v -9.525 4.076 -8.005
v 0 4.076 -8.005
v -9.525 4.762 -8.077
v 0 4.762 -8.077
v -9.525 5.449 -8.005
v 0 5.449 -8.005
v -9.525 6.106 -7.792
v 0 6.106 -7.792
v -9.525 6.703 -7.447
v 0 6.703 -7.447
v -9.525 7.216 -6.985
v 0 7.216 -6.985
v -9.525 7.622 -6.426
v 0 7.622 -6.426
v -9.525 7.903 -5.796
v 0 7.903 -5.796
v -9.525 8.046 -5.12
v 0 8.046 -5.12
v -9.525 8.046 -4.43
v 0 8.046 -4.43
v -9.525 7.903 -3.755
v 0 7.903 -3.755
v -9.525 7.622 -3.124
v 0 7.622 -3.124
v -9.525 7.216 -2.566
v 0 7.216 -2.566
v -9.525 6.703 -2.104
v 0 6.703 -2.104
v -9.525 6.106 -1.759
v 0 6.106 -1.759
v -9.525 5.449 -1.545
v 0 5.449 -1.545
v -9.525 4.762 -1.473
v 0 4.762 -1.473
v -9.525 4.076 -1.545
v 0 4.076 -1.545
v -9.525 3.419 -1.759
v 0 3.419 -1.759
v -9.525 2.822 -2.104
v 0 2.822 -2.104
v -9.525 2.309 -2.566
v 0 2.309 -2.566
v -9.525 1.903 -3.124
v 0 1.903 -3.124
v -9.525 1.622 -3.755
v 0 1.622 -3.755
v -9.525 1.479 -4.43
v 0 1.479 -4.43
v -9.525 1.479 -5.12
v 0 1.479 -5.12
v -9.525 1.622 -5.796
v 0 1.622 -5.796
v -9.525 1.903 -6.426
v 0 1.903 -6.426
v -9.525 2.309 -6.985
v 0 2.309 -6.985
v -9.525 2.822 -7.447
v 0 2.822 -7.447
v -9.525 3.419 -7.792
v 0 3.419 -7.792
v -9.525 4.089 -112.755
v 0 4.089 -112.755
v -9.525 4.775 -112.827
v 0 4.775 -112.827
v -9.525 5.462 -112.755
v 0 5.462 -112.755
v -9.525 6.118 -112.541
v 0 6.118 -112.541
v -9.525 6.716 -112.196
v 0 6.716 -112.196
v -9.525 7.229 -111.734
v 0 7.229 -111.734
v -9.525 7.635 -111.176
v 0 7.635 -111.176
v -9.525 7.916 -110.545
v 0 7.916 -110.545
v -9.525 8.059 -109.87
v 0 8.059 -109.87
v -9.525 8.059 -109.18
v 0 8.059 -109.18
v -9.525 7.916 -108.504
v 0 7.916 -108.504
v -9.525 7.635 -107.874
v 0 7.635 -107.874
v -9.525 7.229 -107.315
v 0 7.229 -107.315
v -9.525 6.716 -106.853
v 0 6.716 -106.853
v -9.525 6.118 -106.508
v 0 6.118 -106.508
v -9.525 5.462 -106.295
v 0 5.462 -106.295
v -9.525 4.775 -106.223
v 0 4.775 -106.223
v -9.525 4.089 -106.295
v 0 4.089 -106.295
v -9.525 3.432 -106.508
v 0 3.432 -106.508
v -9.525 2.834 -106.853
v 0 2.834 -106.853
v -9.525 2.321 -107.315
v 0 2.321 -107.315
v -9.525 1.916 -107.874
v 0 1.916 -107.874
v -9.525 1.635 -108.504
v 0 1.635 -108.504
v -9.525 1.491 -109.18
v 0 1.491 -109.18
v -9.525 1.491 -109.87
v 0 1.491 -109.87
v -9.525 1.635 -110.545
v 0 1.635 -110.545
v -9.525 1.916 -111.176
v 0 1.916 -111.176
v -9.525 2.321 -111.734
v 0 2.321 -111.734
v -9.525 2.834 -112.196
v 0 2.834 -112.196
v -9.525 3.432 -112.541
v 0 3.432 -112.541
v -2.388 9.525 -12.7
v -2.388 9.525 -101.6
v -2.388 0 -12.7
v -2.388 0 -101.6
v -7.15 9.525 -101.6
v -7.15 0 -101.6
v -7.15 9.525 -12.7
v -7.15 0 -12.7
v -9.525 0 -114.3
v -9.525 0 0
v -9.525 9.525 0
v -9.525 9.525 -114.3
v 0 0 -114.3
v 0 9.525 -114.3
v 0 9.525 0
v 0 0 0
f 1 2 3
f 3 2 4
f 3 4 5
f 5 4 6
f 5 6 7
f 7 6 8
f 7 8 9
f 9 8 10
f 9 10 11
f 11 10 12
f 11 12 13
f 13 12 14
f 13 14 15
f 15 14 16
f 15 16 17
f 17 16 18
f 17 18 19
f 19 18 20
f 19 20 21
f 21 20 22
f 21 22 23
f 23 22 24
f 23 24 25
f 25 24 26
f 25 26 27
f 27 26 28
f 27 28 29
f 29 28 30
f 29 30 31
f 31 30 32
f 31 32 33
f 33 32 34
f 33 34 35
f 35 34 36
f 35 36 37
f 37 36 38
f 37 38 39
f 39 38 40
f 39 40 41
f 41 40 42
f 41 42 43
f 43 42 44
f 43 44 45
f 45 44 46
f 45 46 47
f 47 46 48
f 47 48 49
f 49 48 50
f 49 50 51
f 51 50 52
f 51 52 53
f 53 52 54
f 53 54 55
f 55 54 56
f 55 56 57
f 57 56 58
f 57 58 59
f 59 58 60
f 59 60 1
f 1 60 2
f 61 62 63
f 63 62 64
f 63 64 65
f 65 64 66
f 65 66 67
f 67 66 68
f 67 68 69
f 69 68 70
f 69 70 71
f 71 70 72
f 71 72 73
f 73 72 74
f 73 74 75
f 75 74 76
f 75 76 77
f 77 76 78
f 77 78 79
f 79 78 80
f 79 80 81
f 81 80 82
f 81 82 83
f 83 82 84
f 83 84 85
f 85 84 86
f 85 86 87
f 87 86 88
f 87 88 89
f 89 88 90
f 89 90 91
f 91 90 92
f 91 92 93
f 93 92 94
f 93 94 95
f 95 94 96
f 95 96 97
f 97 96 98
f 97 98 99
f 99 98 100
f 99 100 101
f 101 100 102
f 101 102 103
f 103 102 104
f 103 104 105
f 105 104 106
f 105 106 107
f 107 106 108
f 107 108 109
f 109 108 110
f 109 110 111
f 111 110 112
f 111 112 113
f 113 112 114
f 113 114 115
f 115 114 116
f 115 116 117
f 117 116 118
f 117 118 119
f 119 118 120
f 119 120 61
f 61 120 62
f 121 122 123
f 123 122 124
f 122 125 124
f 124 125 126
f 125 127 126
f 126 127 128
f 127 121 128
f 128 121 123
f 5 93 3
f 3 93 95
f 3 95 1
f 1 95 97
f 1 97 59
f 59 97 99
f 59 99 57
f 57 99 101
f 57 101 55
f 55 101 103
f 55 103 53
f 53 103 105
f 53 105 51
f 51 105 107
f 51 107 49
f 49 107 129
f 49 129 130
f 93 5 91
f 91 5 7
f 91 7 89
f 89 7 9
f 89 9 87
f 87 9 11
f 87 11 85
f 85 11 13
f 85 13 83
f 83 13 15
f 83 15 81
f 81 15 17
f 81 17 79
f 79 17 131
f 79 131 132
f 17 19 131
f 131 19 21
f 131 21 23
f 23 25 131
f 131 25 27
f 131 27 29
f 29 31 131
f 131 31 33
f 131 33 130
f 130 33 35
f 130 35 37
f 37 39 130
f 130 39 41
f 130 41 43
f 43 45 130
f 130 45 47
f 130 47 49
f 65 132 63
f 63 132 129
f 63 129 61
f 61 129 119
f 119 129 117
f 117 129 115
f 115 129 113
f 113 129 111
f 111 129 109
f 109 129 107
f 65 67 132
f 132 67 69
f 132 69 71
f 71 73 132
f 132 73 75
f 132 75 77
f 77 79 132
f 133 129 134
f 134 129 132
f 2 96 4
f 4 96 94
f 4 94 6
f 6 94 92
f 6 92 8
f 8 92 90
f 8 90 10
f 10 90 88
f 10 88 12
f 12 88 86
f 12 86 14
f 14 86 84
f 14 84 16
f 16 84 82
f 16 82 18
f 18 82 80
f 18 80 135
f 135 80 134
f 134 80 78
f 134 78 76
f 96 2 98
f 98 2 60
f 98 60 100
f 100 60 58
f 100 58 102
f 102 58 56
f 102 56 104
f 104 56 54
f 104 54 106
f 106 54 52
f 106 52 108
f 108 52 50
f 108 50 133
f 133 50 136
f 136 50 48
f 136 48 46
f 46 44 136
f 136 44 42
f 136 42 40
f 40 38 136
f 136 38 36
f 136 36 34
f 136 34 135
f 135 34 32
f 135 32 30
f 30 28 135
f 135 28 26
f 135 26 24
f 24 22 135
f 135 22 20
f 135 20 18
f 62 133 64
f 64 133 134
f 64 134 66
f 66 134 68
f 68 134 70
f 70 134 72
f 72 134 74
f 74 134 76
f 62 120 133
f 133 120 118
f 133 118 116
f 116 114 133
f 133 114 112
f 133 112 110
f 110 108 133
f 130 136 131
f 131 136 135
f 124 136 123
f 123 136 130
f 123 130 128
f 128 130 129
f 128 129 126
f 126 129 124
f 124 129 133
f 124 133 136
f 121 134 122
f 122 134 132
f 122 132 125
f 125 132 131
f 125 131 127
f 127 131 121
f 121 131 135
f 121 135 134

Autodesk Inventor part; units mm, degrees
ref_plane "YZ Plane" through (0, 0, 0) normal (1, 0, 0) x (0, 1, 0)
ref_plane "XZ Plane" through (0, 0, 0) normal (0, 1, 0) x (-1, 0, 0)
ref_plane "XY Plane" through (0, 0, 0) normal (0, 0, 1) x (1, 0, 0)
sketch "Sketch1" plane through (0, 0, 0) normal (0, 1, 0) x (-1, 0, 0)
  line L0 (0, 0) -> (9.525, 0)
  line L1 (9.525, 0) -> (9.525, -114.3)
  line L2 (9.525, -114.3) -> (0, -114.3)
  line L3 (0, -114.3) -> (0, 0)
  dimension "d0" = 9.525
  dimension "d1" = 114.3
extrude "Extrusion1" add sketch "Sketch1" along normal blind 9.525
sketch "Sketch2" plane through (0, 9.525, 0) normal (0, 1, 0) x (1, 0, 0)
  point P0 (0, 0)
  point P1 (-2.3813, 12.7)
sketch "Sketch3" plane through (0, 9.525, 0) normal (0, 1, 0) x (1, 0, 0)
  line L0 (-2.3876, 12.7) -> (-7.1501, 12.7)
  line L1 (-7.1501, 12.7) -> (-7.1501, 101.6)
  line L2 (-7.1501, 101.6) -> (-2.3876, 101.6)
  line L3 (-2.3876, 101.6) -> (-2.3876, 12.7)
  point P0 (0, 0)
  dimension "d4" = 4.7625
  dimension "d5" = 88.9
extrude "Extrusion2" cut sketch "Sketch3" against normal blind 9.525
sketch "Sketch4" plane through (0, 0, 0) normal (1, 0, 0) x (0, 0, -1)
  circle A0 centre (6.1453, 4.7625) radius 3.175
  circle A1 centre (6.1453, 4.7625) radius 3.302
  point P0 (0, 0)
  dimension "d8" = 6.35
  dimension "d9" = 6.604
extrude "Extrusion3" cut sketch "Sketch4" against normal blind 8.255 contours A0 | A1
sketch "Sketch5" plane through (0, 0, 0) normal (1, 0, 0) x (0, 0, -1)
  point P0 (0, 0)
  point P1 (107.95, 4.7625)
sketch "Sketch6" plane through (0, 0, 0) normal (1, 0, 0) x (0, 0, -1)
  circle A0 centre (6.1453, 4.7625) radius 3.302 projected
  circle A1 centre (6.1453, 4.7625) radius 3.302
  point P0 (0, 0)
extrude "Extrusion4" add sketch "Sketch6" against normal blind 9.2075
sketch "Sketch7" plane through (0, 0, 0) normal (1, 0, 0) x (0, 0, -1)
  circle A0 centre (4.7752, 4.7625) radius 3.302
  circle A1 centre (109.5248, 4.7752) radius 3.302
  point P0 (0, 0)
  dimension "d14" = 6.604
  dimension "d15" = 6.604
extrude "Extrusion5" cut sketch "Sketch7" against normal blind 7.62
sketch "Sketch8" plane through (-9.525, 0, -114.3) normal (-1, 0, 0) x (0, 0, 1)
  line L0 (61.9125, 3.175) -> (52.3875, 3.175)
  line L1 (52.3875, 3.175) -> (52.3875, 6.35)
  line L2 (52.3875, 6.35) -> (61.9125, 6.35)
  line L3 (61.9125, 6.35) -> (61.9125, 3.175)
  line L4 (61.9125, 3.175) -> (52.3875, 6.35) construction
  line L5 (52.3875, 3.175) -> (61.9125, 6.35) construction
  point P0 (114.3, 0)
  point P1 (57.15, 4.7625)
  dimension "d18" = 9.525
  dimension "d19" = 3.175
extrude "Extrusion6" add sketch "Sketch8" along normal blind 19.05
sketch "Sketch9" plane through (-9.525, 6.35, -52.3875) normal (0, 1, 0) x (1, 0, 0)
  point P0 (9.525, -52.3875)
sketch "Sketch10" plane through (-28.575, 0, -114.3) normal (-1, 0, 0) x (0, 0, 1)
  point P0 (114.3, 0)
sketch "Sketch11" plane through (-28.575, 0, -114.3) normal (-1, 0, 0) x (0, 0, 1)
  line L0 (61.9125, 3.175) -> (52.3875, 3.175) projected
  line L1 (52.3875, 6.35) -> (61.9125, 6.35) projected
  line L2 (52.3875, 3.175) -> (61.9125, 3.175)
  line L3 (61.9125, 3.175) -> (61.9125, 6.35)
  line L4 (61.9125, 6.35) -> (52.3875, 6.35)
  line L5 (52.3875, 6.35) -> (52.3875, 3.175)
  point P0 (114.3, 0)
extrude "Extrusion7" add sketch "Sketch11" along normal blind 6.35
sketch "Sketch12" plane through (-34.925, 0, -114.3) normal (-1, 0, 0) x (0, 0, 1)
  line L0 (52.3875, 6.35) -> (61.9125, 6.35) projected
  line L1 (52.3875, 3.175) -> (52.3875, 6.35) projected
  line L2 (61.9125, 6.35) -> (52.3875, 6.35)
  line L3 (52.3875, 6.35) -> (52.3875, 3.175)
  line L4 (52.3875, 3.175) -> (61.9125, 3.175)
  line L5 (61.9125, 3.175) -> (61.9125, 6.35)
  point P0 (114.3, 0)
sketch "Sketch13" plane through (-9.525, 3.175, -61.9125) normal (0, -1, 0) x (1, 0, 0)
  circle A0 centre (-20.6248, 4.7625) radius 3.175
  point P0 (9.525, 61.9125)
  dimension "d24" = 6.35
extrude "Extrusion8" cut sketch "Sketch13" against normal blind 6.35
fillet "Fillet1" radius 3.175 2 edges at (-9.525, 6.35, -57.15) (-9.525, 3.175, -57.15)
fillet "Fillet2" radius 3.175 2 edges at (-9.525, 4.7625, -52.3875) (-9.525, 4.7625, -61.9125)
sketch "Sketch14" plane through (-9.525, 0, 0) normal (-1, 0, 0) x (0, 0, 1)
  line L0 (-61.9125, 3.175) -> (-52.3875, 3.175) projected
  line L1 (-61.9125, 3.175) -> (-87.3125, 3.175)
  line L2 (-87.3125, 3.175) -> (-87.3125, 6.35)
  line L3 (-87.3125, 6.35) -> (-61.9125, 6.35)
  line L4 (-61.9125, 6.35) -> (-61.9125, 3.175)
  line L5 (-49.2125, 0) -> (-52.3875, 3.175) projected
  line L6 (-52.3875, 3.175) -> (-26.9875, 3.175)
  line L7 (-26.9875, 3.175) -> (-26.9875, 6.35)
  line L8 (-26.9875, 6.35) -> (-52.3875, 6.35)
  line L9 (-52.3875, 6.35) -> (-52.3875, 3.175)
  point P0 (0, 0)
  dimension "d29" = 25.4
  dimension "d30" = 25.4
sketch "Sketch15" plane through (-9.525, 0, 0) normal (-1, 0, 0) x (0, 0, 1)
  point P0 (0, 0)
sketch "Sketch16" plane through (-34.925, 6.35, -52.3875) normal (0, 1, 0) x (1, 0, 0)
  arc A0 (25.3996, 34.9251) -> (25.3996, -25.3998) centre (30.609, 4.7627) ccw
  line L0 (25.3996, 34.9251) -> (25.3996, -25.3998)
  line L1 (25.4, 61.9125) -> (25.4, 12.7) projected
  point P0 (34.925, -52.3875)
sketch "Sketch17" plane through (-34.925, 6.35, -52.3875) normal (0, 1, 0) x (1, 0, 0)
  circle A0 centre (4.7752, 4.7625) radius 3.175 projected
  point P0 (34.925, -52.3875)
sketch "Sketch18" plane through (0, 9.525, 0) normal (0, 1, 0) x (1, 0, 0)
  point P0 (0, 0)
sketch "Sketch19" plane through (-9.525, 0, -114.3) normal (-1, 0, 0) x (0, 0, 1)
  point P0 (114.3, 0)
extrude "Extrusion9" add sketch "Sketch16" against normal blind 3.175
hole "Hole1" at (-30.1498, 6.35, -57.15) direction (0, -1, 0) diameter 6.35 depth 3.048 tip angle 118
sketch "Sketch20" plane through (0, 9.525, 0) normal (0, 1, 0) x (1, 0, 0)
  line L0 (-9.525, 0) -> (-9.525, 49.2125) projected
  line L1 (-9.525, 0) -> (-38.3402, 0)
  line L2 (-38.3402, 0) -> (-38.3402, 114.3)
  line L3 (-38.3402, 114.3) -> (-9.525, 114.3)
  line L4 (-9.525, 114.3) -> (-9.525, 0)
  point P0 (0, 0)
extrude "Extrusion10" cut sketch "Sketch20" against normal blind 25.4
sketch "Sketch21" plane through (0, 0, 0) normal (1, 0, 0) x (0, 0, -1)
  circle A0 centre (4.7752, 4.7625) radius 3.302 projected
  circle A1 centre (4.7752, 4.7625) radius 3.302
  circle A2 centre (109.5248, 4.7752) radius 3.302 projected
  circle A3 centre (109.5248, 4.7752) radius 3.302
  point P0 (0, 0)
extrude "Extrusion11" cut sketch "Sketch21" against normal blind 12.7
equation "\"d38\" = Thickness"
equation "\"BendRadius\" = Thickness"
equation "\"BendReliefWidth\" = Thickness"
equation "\"BendReliefDepth\" = 0.5 * Thickness"
equation "\"CornerReliefSize\" = 4 * Thickness"
equation "\"MinimumRemnant\" = 2 * Thickness"
equation "\"TransitionRadius\" = BendRadius"
equation "\"JacobiRadiusSize\" = Thickness"
equation "\"GapSize\" = Thickness"
equation "\"Thickness\" = 3.048"
properties part number "MTV horizantal connector (12.10)"
